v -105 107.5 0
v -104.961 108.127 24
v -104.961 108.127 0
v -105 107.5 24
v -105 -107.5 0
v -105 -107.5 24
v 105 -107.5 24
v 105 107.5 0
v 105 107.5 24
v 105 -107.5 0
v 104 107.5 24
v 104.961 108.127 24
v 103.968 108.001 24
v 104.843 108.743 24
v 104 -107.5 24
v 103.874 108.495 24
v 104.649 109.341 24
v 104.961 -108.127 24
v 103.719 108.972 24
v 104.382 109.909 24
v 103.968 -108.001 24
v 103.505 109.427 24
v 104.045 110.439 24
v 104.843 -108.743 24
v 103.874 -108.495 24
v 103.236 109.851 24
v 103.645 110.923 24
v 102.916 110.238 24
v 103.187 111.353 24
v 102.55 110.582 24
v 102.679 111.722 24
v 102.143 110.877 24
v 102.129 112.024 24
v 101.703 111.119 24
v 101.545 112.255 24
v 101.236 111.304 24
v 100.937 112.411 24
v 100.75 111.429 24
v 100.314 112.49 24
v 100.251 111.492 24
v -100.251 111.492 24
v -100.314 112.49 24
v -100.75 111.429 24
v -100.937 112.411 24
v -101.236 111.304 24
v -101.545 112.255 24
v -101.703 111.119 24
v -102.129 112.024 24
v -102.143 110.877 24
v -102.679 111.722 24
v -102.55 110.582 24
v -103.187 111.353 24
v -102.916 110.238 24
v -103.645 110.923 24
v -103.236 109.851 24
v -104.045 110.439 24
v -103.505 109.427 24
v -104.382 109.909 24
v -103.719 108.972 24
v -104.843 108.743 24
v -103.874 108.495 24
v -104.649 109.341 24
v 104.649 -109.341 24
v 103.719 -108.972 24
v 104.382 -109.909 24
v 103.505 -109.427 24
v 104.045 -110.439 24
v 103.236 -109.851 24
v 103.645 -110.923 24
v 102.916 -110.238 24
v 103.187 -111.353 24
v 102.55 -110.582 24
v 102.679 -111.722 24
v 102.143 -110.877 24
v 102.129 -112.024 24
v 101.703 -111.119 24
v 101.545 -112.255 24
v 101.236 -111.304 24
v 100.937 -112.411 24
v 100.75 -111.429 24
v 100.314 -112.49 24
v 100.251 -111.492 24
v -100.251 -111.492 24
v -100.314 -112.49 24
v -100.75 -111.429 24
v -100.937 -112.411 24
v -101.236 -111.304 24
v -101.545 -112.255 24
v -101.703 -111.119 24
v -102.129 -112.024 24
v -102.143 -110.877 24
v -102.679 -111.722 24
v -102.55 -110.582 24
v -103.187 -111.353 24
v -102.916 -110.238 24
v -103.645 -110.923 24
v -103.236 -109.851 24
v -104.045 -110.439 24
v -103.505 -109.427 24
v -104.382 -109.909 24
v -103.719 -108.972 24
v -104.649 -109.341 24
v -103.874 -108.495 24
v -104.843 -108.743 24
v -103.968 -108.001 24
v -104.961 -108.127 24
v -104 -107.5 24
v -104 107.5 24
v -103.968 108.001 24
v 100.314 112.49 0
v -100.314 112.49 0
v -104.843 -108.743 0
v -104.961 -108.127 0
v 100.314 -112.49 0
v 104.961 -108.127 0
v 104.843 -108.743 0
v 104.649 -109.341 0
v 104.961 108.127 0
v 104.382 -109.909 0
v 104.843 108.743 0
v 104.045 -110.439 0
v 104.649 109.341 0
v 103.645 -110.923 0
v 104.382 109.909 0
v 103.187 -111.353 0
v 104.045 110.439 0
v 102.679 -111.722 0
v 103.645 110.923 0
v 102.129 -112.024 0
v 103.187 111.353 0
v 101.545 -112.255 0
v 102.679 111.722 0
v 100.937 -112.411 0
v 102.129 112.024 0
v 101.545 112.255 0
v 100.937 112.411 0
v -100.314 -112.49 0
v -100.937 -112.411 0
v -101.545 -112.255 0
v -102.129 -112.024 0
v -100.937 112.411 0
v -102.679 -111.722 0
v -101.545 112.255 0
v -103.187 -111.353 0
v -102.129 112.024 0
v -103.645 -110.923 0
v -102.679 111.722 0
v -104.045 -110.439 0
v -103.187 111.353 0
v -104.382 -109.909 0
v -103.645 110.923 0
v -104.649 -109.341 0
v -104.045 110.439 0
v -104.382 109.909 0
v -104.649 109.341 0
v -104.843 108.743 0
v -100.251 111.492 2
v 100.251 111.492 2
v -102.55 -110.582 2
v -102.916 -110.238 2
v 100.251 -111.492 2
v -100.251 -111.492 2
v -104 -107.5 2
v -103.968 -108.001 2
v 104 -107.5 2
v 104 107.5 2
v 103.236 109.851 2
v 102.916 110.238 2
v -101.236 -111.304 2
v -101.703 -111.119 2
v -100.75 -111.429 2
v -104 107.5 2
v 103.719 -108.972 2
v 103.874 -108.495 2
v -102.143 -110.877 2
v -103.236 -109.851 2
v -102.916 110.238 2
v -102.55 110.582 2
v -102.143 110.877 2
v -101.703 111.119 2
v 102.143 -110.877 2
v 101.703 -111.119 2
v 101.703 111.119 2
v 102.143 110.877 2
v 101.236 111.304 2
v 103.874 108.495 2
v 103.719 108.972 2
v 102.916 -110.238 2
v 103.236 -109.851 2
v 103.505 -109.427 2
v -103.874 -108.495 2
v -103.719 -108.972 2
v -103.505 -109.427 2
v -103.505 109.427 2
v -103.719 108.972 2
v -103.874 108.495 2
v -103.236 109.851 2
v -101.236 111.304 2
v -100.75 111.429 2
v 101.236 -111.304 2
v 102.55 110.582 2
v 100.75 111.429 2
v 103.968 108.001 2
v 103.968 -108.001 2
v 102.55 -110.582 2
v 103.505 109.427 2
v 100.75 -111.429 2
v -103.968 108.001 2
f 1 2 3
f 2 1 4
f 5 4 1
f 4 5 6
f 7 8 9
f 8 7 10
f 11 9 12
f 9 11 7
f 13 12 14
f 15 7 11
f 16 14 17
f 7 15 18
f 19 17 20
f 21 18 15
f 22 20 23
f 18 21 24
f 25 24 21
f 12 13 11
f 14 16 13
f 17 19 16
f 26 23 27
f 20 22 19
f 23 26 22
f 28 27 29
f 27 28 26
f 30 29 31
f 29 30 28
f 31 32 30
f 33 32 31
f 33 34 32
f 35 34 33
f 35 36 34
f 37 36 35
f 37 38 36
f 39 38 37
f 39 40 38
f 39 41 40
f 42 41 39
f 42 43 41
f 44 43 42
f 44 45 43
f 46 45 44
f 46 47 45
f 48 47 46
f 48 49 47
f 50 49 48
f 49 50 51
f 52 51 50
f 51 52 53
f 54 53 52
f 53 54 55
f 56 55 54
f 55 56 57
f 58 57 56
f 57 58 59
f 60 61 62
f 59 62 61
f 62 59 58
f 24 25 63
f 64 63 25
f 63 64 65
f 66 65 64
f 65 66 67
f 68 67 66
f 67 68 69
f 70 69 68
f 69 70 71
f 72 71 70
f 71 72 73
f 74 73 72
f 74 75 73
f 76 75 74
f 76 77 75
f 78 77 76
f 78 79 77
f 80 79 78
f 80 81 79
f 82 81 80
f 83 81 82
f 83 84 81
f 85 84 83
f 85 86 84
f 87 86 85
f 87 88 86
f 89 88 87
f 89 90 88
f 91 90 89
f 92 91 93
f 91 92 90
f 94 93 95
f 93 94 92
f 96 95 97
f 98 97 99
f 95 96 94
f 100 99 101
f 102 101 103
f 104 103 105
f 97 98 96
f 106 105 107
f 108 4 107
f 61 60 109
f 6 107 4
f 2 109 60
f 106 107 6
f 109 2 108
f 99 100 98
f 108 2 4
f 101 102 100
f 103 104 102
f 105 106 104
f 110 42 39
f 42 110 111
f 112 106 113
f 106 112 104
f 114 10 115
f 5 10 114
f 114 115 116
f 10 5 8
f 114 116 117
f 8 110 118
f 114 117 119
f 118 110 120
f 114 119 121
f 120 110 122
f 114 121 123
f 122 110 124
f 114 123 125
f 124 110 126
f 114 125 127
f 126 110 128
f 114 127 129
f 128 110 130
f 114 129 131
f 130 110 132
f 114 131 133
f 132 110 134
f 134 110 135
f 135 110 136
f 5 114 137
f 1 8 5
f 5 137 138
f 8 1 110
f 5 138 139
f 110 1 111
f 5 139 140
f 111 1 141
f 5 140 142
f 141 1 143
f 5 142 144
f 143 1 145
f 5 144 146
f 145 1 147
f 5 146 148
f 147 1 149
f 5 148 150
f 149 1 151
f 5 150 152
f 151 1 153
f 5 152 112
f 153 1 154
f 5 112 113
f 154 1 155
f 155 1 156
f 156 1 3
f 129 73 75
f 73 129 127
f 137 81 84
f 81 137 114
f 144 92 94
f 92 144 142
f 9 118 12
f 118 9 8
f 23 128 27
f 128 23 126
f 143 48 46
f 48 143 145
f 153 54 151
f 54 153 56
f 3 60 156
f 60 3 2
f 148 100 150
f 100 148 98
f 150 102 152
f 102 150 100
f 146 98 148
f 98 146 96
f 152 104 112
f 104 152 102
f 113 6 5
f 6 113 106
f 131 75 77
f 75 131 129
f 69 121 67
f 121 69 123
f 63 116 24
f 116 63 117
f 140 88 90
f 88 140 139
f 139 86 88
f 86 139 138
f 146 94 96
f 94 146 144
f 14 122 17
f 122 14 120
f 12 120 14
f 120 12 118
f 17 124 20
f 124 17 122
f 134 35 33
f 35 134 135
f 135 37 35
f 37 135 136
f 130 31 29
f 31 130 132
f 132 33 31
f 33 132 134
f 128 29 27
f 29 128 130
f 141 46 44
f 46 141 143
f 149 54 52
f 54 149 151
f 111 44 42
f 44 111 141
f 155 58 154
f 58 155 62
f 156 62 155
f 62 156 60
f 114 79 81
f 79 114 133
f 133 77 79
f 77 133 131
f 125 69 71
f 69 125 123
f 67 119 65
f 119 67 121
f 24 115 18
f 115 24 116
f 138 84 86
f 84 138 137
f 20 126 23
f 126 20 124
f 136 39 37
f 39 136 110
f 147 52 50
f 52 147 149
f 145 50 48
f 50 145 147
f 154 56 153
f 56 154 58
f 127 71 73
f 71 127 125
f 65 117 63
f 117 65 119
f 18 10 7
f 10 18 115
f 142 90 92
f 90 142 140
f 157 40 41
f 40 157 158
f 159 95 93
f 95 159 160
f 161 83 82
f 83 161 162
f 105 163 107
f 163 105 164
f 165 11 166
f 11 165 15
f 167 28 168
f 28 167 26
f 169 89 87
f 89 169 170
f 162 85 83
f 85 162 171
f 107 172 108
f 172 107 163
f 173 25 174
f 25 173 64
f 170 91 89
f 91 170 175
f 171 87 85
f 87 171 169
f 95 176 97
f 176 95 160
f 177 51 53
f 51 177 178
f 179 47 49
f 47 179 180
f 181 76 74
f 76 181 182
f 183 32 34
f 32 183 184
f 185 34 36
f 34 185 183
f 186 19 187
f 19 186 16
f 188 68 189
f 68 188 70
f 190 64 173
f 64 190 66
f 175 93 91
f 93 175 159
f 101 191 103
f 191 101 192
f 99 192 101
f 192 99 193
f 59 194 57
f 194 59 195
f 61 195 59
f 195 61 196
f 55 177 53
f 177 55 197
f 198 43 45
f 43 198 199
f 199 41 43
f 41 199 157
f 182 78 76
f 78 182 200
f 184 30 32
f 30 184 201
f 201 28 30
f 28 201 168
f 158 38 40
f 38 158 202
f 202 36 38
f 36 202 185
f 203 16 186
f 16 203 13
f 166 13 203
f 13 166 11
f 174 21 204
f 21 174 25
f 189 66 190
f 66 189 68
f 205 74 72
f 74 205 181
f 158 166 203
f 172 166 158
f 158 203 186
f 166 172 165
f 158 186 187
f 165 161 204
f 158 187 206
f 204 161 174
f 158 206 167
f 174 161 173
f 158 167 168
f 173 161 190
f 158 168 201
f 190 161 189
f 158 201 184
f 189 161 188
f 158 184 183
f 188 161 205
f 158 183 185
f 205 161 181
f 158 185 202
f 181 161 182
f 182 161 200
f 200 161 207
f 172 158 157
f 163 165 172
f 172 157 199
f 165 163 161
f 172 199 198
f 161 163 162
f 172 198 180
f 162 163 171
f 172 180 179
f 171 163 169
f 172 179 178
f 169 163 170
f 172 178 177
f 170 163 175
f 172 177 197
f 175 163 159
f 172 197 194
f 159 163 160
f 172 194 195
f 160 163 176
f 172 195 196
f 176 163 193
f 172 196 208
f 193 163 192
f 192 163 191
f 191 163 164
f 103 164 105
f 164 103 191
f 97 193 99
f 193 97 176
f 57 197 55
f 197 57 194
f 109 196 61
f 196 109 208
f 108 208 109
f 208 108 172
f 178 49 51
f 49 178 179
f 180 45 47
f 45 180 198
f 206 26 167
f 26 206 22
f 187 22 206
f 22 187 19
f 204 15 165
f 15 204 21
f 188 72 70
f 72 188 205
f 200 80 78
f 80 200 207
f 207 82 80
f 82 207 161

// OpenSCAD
$fn = 50;


difference() {
	union() {
		hull() {
			translate(v = [-100.0000000000, 107.5000000000, 0]) {
				cylinder(h = 24, r = 5);
			}
			translate(v = [100.0000000000, 107.5000000000, 0]) {
				cylinder(h = 24, r = 5);
			}
			translate(v = [-100.0000000000, -107.5000000000, 0]) {
				cylinder(h = 24, r = 5);
			}
			translate(v = [100.0000000000, -107.5000000000, 0]) {
				cylinder(h = 24, r = 5);
			}
		}
	}
	union() {
		translate(v = [0, 0, 2]) {
			hull() {
				translate(v = [-100.0000000000, 107.5000000000, 0]) {
					cylinder(h = 22, r = 4);
				}
				translate(v = [100.0000000000, 107.5000000000, 0]) {
					cylinder(h = 22, r = 4);
				}
				translate(v = [-100.0000000000, -107.5000000000, 0]) {
					cylinder(h = 22, r = 4);
				}
				translate(v = [100.0000000000, -107.5000000000, 0]) {
					cylinder(h = 22, r = 4);
				}
			}
		}
	}
}
